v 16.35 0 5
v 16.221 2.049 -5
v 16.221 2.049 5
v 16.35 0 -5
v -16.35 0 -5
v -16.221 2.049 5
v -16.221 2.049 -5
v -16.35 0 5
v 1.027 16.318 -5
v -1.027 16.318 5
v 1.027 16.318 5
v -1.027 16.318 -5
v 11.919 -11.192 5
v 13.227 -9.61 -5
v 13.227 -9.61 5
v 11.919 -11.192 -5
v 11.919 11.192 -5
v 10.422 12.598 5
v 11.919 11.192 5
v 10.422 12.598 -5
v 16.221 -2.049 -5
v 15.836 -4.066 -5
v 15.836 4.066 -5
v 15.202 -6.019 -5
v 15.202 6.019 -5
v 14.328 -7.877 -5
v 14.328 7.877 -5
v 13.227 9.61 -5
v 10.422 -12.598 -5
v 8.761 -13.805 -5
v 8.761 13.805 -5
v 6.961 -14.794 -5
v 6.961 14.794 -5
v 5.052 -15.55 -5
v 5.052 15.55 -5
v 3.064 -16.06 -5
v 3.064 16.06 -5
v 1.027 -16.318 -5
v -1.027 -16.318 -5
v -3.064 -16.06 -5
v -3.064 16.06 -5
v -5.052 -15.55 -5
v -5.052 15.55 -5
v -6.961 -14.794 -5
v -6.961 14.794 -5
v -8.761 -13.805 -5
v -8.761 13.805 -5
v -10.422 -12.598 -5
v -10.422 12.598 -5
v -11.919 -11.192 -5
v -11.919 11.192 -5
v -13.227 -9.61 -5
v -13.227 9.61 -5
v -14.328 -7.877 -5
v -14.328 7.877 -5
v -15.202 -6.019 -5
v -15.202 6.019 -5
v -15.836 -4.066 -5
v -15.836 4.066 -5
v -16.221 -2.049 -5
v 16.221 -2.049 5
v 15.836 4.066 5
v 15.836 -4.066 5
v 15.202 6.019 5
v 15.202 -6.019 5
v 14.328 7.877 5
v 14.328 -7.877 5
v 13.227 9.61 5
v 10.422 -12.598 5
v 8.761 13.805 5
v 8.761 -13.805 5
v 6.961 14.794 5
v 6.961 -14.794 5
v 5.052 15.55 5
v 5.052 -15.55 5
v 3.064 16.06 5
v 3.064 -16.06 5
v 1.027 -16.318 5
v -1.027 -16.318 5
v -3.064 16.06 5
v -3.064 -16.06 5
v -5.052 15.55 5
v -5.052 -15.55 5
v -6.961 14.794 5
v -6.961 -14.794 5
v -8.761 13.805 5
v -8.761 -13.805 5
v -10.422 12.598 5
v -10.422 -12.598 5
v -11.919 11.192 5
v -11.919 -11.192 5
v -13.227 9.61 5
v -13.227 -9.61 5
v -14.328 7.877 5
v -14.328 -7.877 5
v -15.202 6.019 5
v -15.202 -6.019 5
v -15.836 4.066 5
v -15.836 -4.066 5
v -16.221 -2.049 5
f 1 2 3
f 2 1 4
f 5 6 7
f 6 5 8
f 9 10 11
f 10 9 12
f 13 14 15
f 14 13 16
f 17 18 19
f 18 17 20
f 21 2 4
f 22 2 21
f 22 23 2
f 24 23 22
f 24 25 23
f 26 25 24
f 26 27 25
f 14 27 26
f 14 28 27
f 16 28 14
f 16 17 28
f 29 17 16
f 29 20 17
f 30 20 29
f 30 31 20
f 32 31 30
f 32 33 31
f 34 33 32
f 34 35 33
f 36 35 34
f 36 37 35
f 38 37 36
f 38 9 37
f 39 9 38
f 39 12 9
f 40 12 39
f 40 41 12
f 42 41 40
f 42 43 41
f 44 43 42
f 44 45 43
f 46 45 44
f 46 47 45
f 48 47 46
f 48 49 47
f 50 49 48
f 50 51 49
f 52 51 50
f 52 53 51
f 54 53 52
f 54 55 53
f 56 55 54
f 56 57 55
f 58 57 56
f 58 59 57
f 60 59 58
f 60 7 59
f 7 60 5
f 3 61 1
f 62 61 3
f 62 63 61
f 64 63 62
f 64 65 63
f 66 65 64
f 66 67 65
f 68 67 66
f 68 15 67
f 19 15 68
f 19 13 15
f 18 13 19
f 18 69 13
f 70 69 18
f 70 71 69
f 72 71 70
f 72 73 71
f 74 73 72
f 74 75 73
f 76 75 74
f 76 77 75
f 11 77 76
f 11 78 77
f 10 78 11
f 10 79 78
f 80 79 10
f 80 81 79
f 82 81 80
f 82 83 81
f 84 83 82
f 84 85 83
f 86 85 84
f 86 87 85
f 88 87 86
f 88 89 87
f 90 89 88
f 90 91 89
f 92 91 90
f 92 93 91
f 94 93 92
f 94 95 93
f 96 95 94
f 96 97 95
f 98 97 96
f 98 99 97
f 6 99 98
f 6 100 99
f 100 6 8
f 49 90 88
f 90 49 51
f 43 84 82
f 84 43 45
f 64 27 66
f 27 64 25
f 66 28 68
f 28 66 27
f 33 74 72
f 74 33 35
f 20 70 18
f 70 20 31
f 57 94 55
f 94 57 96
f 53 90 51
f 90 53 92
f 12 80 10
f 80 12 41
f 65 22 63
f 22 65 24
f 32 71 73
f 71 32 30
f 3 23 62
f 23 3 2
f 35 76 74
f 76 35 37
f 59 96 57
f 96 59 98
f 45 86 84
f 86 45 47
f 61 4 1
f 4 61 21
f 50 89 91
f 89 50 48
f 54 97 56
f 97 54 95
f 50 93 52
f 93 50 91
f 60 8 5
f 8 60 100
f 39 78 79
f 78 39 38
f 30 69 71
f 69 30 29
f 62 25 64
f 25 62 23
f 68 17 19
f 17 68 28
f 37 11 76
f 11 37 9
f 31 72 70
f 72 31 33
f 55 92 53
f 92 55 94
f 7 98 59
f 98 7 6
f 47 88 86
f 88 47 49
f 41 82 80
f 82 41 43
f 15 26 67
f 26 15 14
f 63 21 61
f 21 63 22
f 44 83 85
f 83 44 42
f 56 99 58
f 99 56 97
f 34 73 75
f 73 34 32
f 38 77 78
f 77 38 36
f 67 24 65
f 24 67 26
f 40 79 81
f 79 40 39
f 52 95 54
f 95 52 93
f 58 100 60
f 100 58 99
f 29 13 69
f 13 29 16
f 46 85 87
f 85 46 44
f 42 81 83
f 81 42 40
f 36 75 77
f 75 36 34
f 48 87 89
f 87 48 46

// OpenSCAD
$fn = 50;


difference() {
	union() {
		translate(v = [0, 0, -5.0000000000]) {
			cylinder(h = 10, r = 16.3500000000);
		}
	}
	union() {
		translate(v = [0, 0, -100.0000000000]) {
			cylinder(h = 200, r = 0);
		}
	}
}
